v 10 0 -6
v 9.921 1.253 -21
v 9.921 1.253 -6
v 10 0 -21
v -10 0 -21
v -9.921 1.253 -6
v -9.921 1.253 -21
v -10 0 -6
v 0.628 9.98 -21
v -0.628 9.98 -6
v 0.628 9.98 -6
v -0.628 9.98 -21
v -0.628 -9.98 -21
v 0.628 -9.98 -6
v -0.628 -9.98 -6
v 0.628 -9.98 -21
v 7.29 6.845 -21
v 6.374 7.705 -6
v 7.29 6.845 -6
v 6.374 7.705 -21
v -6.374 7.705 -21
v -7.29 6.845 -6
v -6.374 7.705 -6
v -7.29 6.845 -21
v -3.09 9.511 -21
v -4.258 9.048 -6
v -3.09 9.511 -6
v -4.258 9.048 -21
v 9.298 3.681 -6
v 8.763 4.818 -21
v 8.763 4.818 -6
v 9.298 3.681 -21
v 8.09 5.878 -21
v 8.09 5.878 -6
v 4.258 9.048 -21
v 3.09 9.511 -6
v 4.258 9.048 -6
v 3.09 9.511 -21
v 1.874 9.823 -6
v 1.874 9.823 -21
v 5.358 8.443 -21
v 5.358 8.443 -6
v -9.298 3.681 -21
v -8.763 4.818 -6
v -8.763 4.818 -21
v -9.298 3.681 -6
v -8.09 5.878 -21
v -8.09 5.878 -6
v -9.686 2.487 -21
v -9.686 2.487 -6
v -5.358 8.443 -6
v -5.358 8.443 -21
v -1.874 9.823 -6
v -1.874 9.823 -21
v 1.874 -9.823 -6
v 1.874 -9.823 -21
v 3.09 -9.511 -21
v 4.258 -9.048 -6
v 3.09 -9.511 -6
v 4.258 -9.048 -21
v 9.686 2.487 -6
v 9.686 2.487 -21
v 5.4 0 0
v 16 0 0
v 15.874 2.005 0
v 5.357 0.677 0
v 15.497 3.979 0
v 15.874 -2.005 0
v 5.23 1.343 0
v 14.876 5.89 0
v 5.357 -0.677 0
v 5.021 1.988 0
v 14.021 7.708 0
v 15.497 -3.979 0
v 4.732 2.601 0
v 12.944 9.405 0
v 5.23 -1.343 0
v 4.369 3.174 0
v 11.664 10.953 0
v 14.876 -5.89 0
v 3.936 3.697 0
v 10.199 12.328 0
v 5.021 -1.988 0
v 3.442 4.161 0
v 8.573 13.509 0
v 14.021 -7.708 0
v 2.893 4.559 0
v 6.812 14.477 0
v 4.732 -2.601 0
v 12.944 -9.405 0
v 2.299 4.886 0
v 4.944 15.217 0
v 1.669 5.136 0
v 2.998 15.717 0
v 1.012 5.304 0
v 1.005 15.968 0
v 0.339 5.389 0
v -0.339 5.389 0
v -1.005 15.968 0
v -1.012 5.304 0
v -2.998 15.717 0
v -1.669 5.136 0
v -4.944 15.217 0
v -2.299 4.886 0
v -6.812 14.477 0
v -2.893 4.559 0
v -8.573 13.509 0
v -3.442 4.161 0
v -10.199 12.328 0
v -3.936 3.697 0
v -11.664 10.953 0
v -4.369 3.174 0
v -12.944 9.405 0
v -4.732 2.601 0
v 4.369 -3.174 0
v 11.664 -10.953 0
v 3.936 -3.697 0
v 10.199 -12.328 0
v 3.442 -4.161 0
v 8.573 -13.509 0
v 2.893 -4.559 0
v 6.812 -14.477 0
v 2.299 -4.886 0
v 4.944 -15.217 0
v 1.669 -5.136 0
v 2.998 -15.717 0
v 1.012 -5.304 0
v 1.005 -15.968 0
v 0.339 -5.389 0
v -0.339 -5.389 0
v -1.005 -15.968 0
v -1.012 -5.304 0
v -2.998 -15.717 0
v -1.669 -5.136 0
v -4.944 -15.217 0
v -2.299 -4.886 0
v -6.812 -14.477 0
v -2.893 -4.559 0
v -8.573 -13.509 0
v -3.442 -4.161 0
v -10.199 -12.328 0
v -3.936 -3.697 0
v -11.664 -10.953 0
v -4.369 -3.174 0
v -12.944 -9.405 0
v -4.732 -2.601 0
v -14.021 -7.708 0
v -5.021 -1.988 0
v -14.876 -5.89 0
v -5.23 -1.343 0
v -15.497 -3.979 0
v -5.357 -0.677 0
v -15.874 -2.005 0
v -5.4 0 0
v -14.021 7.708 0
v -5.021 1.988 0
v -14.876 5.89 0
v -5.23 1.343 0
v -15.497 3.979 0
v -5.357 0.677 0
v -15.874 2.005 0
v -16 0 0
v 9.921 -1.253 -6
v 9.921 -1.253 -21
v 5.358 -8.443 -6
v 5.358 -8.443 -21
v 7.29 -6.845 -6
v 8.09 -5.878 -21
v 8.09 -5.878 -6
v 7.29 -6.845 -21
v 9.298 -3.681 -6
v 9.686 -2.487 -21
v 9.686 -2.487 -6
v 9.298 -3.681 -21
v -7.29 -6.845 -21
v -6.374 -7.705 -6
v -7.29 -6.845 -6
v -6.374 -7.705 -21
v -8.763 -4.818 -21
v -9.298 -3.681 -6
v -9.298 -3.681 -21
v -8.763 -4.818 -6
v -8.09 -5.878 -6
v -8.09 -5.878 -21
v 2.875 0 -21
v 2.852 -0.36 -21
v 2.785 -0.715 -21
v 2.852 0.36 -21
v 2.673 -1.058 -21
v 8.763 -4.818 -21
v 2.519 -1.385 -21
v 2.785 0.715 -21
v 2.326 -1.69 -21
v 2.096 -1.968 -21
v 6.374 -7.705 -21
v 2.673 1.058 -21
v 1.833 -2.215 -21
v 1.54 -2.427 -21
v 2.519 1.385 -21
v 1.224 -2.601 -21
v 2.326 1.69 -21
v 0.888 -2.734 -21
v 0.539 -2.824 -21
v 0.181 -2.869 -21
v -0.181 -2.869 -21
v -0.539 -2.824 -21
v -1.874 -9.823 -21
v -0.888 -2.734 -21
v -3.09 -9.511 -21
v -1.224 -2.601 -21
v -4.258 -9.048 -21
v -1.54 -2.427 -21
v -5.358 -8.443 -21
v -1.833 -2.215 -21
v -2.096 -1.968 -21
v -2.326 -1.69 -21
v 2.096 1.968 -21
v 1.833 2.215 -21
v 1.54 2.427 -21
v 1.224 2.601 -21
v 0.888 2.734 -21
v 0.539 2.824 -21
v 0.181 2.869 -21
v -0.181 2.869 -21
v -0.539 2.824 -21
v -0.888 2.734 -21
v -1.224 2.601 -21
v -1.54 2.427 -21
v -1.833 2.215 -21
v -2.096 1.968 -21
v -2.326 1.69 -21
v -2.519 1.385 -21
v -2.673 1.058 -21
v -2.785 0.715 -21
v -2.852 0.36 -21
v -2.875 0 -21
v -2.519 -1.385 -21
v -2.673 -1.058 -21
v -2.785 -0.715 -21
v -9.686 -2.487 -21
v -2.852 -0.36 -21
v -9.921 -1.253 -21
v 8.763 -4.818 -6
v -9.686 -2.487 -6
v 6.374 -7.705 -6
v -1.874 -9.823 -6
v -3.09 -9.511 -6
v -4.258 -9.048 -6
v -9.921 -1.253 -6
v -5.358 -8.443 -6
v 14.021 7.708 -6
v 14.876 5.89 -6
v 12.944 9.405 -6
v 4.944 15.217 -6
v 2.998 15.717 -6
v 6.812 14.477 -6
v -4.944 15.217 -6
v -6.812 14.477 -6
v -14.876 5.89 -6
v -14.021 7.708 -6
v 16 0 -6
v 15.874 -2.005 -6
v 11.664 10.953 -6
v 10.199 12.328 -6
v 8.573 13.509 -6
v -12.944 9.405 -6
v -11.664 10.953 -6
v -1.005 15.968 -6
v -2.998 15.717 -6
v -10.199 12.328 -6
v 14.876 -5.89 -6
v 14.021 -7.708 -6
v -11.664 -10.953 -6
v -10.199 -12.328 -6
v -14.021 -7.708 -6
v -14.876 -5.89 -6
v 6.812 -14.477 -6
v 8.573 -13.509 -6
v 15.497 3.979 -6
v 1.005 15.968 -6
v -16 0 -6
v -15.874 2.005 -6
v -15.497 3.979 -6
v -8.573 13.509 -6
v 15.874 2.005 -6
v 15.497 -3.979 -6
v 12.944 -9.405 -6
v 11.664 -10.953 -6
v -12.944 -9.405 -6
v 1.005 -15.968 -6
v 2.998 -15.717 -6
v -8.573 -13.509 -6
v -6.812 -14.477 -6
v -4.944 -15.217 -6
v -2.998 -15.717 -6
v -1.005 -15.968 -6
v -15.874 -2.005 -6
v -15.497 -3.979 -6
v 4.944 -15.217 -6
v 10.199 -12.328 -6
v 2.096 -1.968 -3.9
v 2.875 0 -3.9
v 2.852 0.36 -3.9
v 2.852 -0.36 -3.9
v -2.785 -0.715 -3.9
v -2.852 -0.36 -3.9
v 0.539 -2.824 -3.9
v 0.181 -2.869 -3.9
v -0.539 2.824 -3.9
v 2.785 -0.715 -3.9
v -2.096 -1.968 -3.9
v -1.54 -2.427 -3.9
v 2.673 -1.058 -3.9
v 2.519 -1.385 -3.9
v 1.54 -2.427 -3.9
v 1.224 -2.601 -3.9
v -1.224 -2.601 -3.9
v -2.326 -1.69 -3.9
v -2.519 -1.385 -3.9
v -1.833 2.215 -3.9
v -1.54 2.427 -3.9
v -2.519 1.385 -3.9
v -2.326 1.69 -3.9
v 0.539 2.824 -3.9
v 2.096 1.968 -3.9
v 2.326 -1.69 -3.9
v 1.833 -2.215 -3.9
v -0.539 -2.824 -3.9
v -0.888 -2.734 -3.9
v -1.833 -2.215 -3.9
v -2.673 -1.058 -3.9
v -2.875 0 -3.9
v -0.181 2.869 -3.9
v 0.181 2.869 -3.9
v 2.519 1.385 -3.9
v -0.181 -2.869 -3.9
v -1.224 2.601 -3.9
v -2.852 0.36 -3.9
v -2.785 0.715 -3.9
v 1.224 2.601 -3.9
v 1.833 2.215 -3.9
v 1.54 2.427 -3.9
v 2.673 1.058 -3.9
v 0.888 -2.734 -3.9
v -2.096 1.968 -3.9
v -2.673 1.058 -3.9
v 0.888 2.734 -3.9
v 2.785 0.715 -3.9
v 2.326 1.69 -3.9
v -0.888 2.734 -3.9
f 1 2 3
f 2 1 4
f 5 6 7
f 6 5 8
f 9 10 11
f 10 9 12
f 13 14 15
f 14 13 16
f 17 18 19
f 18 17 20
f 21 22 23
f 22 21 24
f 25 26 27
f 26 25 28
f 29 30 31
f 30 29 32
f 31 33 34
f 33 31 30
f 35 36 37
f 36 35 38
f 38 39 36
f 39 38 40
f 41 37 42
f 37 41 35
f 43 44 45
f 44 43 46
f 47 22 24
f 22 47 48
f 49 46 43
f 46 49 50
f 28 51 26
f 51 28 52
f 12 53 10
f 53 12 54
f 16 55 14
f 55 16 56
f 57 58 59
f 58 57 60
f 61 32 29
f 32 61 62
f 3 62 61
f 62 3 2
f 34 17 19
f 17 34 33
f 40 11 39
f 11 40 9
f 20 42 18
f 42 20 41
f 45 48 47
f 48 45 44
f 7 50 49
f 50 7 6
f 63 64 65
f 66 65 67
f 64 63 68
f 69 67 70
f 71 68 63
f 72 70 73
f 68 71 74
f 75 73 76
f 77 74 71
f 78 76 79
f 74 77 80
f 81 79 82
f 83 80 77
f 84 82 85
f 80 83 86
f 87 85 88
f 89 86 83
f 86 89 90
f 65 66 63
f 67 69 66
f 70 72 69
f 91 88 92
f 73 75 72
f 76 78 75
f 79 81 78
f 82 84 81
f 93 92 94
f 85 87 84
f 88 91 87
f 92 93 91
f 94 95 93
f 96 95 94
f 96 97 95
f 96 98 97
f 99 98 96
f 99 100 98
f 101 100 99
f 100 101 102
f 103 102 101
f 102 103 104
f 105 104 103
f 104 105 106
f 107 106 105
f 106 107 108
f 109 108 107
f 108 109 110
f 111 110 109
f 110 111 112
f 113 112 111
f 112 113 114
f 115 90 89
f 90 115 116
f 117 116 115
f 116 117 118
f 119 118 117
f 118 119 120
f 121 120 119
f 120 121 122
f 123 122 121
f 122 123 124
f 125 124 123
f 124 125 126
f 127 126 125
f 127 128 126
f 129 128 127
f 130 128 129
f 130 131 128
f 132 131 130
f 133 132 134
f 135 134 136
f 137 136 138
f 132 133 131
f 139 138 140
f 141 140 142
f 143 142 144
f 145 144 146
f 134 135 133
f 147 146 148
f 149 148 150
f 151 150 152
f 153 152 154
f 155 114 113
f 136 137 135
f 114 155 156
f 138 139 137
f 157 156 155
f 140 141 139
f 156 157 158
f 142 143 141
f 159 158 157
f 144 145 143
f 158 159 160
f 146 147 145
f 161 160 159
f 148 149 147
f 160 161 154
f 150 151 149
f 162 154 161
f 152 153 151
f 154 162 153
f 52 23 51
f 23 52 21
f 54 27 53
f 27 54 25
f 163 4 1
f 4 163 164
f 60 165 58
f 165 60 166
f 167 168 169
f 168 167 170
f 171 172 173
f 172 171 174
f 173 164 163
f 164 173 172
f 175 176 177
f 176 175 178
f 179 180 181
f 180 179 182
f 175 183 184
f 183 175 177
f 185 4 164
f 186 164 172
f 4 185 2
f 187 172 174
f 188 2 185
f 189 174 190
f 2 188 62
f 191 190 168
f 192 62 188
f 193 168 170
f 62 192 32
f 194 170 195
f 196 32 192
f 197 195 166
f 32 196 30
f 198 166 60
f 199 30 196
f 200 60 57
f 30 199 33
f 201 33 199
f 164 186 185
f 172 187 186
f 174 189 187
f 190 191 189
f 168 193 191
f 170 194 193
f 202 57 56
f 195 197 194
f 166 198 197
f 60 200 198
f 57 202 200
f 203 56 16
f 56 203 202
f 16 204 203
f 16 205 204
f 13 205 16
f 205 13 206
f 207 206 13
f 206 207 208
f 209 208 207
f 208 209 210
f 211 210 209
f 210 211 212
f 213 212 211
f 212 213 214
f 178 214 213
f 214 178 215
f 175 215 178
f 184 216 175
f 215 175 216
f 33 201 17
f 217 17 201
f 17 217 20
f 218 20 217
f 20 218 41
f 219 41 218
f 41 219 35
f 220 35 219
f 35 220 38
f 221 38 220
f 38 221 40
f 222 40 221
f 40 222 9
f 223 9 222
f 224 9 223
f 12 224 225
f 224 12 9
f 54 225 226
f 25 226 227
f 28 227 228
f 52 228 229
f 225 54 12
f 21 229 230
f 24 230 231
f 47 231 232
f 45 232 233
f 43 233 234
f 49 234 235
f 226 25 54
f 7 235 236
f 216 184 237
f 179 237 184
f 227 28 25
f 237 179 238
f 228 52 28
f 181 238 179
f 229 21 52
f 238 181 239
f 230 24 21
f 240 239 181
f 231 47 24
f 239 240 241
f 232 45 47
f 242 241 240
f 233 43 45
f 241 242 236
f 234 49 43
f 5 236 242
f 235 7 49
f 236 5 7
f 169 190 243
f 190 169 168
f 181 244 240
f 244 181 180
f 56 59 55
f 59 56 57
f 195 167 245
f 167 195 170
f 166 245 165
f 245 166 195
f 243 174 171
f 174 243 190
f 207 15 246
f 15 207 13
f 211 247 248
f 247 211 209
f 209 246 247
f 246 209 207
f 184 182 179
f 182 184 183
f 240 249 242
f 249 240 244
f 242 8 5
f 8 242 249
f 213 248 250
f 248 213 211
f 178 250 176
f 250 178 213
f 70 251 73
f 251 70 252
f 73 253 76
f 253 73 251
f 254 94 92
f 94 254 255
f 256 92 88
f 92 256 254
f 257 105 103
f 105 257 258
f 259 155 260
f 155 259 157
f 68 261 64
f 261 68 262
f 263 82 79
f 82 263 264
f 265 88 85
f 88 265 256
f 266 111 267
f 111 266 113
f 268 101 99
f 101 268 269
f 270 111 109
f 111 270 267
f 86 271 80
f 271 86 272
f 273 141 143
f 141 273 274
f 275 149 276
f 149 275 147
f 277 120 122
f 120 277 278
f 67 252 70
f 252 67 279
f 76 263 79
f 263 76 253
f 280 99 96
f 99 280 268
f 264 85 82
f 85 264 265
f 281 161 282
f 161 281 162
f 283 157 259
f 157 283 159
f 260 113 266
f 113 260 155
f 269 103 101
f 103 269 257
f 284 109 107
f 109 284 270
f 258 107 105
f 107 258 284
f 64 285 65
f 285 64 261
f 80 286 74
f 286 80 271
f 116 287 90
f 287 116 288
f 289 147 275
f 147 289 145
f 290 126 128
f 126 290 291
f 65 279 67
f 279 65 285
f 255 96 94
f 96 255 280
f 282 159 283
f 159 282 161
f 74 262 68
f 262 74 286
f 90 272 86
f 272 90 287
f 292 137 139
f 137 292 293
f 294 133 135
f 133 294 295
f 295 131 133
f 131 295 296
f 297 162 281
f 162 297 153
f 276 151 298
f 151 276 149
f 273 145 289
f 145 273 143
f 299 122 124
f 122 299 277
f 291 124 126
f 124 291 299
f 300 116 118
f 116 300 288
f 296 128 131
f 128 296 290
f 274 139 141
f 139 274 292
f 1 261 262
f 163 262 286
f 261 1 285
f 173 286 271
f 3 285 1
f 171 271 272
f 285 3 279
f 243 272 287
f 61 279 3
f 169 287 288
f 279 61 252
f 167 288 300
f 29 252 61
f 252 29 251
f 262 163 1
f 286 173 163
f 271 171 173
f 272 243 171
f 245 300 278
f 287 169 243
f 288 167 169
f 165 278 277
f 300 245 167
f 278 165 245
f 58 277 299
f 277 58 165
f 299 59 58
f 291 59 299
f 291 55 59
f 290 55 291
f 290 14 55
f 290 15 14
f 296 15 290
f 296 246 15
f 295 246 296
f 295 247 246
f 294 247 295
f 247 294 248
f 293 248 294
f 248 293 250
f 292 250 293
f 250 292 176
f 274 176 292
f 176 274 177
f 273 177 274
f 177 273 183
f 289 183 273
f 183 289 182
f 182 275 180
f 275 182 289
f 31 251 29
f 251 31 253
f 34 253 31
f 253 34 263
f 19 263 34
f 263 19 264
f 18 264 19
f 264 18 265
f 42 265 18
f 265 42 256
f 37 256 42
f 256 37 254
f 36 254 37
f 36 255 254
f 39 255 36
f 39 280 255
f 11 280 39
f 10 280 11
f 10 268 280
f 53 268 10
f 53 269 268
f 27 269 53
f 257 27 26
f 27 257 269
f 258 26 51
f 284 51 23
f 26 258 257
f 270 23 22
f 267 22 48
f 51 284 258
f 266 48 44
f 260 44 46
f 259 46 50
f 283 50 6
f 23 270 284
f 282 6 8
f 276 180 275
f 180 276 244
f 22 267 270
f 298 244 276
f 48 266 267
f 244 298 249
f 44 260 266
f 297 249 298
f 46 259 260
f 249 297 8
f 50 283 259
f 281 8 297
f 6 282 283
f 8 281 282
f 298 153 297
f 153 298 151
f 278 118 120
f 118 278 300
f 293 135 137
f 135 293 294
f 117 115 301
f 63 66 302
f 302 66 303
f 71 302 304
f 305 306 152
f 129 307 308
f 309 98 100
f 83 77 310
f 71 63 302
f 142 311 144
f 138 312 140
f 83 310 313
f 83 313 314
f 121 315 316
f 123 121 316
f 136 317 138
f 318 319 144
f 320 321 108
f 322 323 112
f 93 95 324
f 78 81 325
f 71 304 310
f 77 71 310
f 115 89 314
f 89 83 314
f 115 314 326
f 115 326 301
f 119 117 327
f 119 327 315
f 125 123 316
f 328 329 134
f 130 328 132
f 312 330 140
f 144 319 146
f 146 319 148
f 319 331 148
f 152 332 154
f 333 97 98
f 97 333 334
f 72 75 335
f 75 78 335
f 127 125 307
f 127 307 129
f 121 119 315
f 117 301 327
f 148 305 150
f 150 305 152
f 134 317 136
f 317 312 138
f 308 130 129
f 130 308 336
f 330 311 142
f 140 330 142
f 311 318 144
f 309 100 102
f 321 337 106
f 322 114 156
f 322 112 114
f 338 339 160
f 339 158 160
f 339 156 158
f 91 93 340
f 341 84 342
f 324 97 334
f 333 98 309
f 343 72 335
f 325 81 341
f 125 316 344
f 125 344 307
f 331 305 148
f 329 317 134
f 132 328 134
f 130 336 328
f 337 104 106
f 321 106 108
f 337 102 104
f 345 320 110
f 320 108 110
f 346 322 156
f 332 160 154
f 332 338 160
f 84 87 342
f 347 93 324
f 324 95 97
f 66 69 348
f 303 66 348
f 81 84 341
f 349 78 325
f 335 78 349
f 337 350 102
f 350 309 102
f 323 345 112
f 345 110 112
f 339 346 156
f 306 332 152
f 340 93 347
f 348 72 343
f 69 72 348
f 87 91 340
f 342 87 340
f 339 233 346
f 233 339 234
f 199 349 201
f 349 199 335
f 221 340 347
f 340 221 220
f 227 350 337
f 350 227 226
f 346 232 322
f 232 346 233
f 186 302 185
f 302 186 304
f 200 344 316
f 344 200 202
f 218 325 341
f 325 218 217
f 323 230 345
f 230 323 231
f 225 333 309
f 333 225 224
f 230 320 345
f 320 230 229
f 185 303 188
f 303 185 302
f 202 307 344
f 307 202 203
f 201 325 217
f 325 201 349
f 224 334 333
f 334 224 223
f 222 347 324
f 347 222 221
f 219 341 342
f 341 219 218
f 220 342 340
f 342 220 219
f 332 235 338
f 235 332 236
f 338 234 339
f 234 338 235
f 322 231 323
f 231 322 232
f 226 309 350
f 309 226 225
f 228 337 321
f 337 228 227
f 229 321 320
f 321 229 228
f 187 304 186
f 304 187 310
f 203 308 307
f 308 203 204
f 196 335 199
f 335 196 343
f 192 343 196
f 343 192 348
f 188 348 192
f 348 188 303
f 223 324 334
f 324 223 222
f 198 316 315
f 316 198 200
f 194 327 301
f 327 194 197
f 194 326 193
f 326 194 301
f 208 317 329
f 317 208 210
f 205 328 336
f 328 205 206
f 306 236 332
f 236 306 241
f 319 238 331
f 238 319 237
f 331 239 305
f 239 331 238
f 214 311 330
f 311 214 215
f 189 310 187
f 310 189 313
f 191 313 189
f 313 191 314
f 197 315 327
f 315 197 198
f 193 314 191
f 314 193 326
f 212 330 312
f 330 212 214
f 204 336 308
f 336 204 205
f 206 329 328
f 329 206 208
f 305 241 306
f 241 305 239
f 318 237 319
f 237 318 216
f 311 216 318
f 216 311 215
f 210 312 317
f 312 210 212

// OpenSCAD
$fn = 50;


difference() {
	union() {
		translate(v = [0, 0, -21.0000000000]) {
			cylinder(h = 21, r = 10.0000000000);
		}
		translate(v = [0, 0, -6.0000000000]) {
			cylinder(h = 6, r = 16.0000000000);
		}
	}
	union() {
		translate(v = [0, 0, 0]) {
			rotate(a = [0, 0, 0]) {
				difference() {
					union() {
						#translate(v = [0, 0, -21.0000000000]) {
							cylinder(h = 21, r = 2.6000000000);
						}
						#translate(v = [0, 0, -3.9000000000]) {
							cylinder(h = 3.9000000000, r = 10.0000000000, r1 = 2.8750000000, r2 = 5.4000000000);
						}
						#translate(v = [0, 0, -21.0000000000]) {
							cylinder(h = 21, r = 2.8750000000);
						}
						#translate(v = [0, 0, -21.0000000000]) {
							cylinder(h = 21, r = 2.6000000000);
						}
					}
					union();
				}
			}
		}
	}
}
